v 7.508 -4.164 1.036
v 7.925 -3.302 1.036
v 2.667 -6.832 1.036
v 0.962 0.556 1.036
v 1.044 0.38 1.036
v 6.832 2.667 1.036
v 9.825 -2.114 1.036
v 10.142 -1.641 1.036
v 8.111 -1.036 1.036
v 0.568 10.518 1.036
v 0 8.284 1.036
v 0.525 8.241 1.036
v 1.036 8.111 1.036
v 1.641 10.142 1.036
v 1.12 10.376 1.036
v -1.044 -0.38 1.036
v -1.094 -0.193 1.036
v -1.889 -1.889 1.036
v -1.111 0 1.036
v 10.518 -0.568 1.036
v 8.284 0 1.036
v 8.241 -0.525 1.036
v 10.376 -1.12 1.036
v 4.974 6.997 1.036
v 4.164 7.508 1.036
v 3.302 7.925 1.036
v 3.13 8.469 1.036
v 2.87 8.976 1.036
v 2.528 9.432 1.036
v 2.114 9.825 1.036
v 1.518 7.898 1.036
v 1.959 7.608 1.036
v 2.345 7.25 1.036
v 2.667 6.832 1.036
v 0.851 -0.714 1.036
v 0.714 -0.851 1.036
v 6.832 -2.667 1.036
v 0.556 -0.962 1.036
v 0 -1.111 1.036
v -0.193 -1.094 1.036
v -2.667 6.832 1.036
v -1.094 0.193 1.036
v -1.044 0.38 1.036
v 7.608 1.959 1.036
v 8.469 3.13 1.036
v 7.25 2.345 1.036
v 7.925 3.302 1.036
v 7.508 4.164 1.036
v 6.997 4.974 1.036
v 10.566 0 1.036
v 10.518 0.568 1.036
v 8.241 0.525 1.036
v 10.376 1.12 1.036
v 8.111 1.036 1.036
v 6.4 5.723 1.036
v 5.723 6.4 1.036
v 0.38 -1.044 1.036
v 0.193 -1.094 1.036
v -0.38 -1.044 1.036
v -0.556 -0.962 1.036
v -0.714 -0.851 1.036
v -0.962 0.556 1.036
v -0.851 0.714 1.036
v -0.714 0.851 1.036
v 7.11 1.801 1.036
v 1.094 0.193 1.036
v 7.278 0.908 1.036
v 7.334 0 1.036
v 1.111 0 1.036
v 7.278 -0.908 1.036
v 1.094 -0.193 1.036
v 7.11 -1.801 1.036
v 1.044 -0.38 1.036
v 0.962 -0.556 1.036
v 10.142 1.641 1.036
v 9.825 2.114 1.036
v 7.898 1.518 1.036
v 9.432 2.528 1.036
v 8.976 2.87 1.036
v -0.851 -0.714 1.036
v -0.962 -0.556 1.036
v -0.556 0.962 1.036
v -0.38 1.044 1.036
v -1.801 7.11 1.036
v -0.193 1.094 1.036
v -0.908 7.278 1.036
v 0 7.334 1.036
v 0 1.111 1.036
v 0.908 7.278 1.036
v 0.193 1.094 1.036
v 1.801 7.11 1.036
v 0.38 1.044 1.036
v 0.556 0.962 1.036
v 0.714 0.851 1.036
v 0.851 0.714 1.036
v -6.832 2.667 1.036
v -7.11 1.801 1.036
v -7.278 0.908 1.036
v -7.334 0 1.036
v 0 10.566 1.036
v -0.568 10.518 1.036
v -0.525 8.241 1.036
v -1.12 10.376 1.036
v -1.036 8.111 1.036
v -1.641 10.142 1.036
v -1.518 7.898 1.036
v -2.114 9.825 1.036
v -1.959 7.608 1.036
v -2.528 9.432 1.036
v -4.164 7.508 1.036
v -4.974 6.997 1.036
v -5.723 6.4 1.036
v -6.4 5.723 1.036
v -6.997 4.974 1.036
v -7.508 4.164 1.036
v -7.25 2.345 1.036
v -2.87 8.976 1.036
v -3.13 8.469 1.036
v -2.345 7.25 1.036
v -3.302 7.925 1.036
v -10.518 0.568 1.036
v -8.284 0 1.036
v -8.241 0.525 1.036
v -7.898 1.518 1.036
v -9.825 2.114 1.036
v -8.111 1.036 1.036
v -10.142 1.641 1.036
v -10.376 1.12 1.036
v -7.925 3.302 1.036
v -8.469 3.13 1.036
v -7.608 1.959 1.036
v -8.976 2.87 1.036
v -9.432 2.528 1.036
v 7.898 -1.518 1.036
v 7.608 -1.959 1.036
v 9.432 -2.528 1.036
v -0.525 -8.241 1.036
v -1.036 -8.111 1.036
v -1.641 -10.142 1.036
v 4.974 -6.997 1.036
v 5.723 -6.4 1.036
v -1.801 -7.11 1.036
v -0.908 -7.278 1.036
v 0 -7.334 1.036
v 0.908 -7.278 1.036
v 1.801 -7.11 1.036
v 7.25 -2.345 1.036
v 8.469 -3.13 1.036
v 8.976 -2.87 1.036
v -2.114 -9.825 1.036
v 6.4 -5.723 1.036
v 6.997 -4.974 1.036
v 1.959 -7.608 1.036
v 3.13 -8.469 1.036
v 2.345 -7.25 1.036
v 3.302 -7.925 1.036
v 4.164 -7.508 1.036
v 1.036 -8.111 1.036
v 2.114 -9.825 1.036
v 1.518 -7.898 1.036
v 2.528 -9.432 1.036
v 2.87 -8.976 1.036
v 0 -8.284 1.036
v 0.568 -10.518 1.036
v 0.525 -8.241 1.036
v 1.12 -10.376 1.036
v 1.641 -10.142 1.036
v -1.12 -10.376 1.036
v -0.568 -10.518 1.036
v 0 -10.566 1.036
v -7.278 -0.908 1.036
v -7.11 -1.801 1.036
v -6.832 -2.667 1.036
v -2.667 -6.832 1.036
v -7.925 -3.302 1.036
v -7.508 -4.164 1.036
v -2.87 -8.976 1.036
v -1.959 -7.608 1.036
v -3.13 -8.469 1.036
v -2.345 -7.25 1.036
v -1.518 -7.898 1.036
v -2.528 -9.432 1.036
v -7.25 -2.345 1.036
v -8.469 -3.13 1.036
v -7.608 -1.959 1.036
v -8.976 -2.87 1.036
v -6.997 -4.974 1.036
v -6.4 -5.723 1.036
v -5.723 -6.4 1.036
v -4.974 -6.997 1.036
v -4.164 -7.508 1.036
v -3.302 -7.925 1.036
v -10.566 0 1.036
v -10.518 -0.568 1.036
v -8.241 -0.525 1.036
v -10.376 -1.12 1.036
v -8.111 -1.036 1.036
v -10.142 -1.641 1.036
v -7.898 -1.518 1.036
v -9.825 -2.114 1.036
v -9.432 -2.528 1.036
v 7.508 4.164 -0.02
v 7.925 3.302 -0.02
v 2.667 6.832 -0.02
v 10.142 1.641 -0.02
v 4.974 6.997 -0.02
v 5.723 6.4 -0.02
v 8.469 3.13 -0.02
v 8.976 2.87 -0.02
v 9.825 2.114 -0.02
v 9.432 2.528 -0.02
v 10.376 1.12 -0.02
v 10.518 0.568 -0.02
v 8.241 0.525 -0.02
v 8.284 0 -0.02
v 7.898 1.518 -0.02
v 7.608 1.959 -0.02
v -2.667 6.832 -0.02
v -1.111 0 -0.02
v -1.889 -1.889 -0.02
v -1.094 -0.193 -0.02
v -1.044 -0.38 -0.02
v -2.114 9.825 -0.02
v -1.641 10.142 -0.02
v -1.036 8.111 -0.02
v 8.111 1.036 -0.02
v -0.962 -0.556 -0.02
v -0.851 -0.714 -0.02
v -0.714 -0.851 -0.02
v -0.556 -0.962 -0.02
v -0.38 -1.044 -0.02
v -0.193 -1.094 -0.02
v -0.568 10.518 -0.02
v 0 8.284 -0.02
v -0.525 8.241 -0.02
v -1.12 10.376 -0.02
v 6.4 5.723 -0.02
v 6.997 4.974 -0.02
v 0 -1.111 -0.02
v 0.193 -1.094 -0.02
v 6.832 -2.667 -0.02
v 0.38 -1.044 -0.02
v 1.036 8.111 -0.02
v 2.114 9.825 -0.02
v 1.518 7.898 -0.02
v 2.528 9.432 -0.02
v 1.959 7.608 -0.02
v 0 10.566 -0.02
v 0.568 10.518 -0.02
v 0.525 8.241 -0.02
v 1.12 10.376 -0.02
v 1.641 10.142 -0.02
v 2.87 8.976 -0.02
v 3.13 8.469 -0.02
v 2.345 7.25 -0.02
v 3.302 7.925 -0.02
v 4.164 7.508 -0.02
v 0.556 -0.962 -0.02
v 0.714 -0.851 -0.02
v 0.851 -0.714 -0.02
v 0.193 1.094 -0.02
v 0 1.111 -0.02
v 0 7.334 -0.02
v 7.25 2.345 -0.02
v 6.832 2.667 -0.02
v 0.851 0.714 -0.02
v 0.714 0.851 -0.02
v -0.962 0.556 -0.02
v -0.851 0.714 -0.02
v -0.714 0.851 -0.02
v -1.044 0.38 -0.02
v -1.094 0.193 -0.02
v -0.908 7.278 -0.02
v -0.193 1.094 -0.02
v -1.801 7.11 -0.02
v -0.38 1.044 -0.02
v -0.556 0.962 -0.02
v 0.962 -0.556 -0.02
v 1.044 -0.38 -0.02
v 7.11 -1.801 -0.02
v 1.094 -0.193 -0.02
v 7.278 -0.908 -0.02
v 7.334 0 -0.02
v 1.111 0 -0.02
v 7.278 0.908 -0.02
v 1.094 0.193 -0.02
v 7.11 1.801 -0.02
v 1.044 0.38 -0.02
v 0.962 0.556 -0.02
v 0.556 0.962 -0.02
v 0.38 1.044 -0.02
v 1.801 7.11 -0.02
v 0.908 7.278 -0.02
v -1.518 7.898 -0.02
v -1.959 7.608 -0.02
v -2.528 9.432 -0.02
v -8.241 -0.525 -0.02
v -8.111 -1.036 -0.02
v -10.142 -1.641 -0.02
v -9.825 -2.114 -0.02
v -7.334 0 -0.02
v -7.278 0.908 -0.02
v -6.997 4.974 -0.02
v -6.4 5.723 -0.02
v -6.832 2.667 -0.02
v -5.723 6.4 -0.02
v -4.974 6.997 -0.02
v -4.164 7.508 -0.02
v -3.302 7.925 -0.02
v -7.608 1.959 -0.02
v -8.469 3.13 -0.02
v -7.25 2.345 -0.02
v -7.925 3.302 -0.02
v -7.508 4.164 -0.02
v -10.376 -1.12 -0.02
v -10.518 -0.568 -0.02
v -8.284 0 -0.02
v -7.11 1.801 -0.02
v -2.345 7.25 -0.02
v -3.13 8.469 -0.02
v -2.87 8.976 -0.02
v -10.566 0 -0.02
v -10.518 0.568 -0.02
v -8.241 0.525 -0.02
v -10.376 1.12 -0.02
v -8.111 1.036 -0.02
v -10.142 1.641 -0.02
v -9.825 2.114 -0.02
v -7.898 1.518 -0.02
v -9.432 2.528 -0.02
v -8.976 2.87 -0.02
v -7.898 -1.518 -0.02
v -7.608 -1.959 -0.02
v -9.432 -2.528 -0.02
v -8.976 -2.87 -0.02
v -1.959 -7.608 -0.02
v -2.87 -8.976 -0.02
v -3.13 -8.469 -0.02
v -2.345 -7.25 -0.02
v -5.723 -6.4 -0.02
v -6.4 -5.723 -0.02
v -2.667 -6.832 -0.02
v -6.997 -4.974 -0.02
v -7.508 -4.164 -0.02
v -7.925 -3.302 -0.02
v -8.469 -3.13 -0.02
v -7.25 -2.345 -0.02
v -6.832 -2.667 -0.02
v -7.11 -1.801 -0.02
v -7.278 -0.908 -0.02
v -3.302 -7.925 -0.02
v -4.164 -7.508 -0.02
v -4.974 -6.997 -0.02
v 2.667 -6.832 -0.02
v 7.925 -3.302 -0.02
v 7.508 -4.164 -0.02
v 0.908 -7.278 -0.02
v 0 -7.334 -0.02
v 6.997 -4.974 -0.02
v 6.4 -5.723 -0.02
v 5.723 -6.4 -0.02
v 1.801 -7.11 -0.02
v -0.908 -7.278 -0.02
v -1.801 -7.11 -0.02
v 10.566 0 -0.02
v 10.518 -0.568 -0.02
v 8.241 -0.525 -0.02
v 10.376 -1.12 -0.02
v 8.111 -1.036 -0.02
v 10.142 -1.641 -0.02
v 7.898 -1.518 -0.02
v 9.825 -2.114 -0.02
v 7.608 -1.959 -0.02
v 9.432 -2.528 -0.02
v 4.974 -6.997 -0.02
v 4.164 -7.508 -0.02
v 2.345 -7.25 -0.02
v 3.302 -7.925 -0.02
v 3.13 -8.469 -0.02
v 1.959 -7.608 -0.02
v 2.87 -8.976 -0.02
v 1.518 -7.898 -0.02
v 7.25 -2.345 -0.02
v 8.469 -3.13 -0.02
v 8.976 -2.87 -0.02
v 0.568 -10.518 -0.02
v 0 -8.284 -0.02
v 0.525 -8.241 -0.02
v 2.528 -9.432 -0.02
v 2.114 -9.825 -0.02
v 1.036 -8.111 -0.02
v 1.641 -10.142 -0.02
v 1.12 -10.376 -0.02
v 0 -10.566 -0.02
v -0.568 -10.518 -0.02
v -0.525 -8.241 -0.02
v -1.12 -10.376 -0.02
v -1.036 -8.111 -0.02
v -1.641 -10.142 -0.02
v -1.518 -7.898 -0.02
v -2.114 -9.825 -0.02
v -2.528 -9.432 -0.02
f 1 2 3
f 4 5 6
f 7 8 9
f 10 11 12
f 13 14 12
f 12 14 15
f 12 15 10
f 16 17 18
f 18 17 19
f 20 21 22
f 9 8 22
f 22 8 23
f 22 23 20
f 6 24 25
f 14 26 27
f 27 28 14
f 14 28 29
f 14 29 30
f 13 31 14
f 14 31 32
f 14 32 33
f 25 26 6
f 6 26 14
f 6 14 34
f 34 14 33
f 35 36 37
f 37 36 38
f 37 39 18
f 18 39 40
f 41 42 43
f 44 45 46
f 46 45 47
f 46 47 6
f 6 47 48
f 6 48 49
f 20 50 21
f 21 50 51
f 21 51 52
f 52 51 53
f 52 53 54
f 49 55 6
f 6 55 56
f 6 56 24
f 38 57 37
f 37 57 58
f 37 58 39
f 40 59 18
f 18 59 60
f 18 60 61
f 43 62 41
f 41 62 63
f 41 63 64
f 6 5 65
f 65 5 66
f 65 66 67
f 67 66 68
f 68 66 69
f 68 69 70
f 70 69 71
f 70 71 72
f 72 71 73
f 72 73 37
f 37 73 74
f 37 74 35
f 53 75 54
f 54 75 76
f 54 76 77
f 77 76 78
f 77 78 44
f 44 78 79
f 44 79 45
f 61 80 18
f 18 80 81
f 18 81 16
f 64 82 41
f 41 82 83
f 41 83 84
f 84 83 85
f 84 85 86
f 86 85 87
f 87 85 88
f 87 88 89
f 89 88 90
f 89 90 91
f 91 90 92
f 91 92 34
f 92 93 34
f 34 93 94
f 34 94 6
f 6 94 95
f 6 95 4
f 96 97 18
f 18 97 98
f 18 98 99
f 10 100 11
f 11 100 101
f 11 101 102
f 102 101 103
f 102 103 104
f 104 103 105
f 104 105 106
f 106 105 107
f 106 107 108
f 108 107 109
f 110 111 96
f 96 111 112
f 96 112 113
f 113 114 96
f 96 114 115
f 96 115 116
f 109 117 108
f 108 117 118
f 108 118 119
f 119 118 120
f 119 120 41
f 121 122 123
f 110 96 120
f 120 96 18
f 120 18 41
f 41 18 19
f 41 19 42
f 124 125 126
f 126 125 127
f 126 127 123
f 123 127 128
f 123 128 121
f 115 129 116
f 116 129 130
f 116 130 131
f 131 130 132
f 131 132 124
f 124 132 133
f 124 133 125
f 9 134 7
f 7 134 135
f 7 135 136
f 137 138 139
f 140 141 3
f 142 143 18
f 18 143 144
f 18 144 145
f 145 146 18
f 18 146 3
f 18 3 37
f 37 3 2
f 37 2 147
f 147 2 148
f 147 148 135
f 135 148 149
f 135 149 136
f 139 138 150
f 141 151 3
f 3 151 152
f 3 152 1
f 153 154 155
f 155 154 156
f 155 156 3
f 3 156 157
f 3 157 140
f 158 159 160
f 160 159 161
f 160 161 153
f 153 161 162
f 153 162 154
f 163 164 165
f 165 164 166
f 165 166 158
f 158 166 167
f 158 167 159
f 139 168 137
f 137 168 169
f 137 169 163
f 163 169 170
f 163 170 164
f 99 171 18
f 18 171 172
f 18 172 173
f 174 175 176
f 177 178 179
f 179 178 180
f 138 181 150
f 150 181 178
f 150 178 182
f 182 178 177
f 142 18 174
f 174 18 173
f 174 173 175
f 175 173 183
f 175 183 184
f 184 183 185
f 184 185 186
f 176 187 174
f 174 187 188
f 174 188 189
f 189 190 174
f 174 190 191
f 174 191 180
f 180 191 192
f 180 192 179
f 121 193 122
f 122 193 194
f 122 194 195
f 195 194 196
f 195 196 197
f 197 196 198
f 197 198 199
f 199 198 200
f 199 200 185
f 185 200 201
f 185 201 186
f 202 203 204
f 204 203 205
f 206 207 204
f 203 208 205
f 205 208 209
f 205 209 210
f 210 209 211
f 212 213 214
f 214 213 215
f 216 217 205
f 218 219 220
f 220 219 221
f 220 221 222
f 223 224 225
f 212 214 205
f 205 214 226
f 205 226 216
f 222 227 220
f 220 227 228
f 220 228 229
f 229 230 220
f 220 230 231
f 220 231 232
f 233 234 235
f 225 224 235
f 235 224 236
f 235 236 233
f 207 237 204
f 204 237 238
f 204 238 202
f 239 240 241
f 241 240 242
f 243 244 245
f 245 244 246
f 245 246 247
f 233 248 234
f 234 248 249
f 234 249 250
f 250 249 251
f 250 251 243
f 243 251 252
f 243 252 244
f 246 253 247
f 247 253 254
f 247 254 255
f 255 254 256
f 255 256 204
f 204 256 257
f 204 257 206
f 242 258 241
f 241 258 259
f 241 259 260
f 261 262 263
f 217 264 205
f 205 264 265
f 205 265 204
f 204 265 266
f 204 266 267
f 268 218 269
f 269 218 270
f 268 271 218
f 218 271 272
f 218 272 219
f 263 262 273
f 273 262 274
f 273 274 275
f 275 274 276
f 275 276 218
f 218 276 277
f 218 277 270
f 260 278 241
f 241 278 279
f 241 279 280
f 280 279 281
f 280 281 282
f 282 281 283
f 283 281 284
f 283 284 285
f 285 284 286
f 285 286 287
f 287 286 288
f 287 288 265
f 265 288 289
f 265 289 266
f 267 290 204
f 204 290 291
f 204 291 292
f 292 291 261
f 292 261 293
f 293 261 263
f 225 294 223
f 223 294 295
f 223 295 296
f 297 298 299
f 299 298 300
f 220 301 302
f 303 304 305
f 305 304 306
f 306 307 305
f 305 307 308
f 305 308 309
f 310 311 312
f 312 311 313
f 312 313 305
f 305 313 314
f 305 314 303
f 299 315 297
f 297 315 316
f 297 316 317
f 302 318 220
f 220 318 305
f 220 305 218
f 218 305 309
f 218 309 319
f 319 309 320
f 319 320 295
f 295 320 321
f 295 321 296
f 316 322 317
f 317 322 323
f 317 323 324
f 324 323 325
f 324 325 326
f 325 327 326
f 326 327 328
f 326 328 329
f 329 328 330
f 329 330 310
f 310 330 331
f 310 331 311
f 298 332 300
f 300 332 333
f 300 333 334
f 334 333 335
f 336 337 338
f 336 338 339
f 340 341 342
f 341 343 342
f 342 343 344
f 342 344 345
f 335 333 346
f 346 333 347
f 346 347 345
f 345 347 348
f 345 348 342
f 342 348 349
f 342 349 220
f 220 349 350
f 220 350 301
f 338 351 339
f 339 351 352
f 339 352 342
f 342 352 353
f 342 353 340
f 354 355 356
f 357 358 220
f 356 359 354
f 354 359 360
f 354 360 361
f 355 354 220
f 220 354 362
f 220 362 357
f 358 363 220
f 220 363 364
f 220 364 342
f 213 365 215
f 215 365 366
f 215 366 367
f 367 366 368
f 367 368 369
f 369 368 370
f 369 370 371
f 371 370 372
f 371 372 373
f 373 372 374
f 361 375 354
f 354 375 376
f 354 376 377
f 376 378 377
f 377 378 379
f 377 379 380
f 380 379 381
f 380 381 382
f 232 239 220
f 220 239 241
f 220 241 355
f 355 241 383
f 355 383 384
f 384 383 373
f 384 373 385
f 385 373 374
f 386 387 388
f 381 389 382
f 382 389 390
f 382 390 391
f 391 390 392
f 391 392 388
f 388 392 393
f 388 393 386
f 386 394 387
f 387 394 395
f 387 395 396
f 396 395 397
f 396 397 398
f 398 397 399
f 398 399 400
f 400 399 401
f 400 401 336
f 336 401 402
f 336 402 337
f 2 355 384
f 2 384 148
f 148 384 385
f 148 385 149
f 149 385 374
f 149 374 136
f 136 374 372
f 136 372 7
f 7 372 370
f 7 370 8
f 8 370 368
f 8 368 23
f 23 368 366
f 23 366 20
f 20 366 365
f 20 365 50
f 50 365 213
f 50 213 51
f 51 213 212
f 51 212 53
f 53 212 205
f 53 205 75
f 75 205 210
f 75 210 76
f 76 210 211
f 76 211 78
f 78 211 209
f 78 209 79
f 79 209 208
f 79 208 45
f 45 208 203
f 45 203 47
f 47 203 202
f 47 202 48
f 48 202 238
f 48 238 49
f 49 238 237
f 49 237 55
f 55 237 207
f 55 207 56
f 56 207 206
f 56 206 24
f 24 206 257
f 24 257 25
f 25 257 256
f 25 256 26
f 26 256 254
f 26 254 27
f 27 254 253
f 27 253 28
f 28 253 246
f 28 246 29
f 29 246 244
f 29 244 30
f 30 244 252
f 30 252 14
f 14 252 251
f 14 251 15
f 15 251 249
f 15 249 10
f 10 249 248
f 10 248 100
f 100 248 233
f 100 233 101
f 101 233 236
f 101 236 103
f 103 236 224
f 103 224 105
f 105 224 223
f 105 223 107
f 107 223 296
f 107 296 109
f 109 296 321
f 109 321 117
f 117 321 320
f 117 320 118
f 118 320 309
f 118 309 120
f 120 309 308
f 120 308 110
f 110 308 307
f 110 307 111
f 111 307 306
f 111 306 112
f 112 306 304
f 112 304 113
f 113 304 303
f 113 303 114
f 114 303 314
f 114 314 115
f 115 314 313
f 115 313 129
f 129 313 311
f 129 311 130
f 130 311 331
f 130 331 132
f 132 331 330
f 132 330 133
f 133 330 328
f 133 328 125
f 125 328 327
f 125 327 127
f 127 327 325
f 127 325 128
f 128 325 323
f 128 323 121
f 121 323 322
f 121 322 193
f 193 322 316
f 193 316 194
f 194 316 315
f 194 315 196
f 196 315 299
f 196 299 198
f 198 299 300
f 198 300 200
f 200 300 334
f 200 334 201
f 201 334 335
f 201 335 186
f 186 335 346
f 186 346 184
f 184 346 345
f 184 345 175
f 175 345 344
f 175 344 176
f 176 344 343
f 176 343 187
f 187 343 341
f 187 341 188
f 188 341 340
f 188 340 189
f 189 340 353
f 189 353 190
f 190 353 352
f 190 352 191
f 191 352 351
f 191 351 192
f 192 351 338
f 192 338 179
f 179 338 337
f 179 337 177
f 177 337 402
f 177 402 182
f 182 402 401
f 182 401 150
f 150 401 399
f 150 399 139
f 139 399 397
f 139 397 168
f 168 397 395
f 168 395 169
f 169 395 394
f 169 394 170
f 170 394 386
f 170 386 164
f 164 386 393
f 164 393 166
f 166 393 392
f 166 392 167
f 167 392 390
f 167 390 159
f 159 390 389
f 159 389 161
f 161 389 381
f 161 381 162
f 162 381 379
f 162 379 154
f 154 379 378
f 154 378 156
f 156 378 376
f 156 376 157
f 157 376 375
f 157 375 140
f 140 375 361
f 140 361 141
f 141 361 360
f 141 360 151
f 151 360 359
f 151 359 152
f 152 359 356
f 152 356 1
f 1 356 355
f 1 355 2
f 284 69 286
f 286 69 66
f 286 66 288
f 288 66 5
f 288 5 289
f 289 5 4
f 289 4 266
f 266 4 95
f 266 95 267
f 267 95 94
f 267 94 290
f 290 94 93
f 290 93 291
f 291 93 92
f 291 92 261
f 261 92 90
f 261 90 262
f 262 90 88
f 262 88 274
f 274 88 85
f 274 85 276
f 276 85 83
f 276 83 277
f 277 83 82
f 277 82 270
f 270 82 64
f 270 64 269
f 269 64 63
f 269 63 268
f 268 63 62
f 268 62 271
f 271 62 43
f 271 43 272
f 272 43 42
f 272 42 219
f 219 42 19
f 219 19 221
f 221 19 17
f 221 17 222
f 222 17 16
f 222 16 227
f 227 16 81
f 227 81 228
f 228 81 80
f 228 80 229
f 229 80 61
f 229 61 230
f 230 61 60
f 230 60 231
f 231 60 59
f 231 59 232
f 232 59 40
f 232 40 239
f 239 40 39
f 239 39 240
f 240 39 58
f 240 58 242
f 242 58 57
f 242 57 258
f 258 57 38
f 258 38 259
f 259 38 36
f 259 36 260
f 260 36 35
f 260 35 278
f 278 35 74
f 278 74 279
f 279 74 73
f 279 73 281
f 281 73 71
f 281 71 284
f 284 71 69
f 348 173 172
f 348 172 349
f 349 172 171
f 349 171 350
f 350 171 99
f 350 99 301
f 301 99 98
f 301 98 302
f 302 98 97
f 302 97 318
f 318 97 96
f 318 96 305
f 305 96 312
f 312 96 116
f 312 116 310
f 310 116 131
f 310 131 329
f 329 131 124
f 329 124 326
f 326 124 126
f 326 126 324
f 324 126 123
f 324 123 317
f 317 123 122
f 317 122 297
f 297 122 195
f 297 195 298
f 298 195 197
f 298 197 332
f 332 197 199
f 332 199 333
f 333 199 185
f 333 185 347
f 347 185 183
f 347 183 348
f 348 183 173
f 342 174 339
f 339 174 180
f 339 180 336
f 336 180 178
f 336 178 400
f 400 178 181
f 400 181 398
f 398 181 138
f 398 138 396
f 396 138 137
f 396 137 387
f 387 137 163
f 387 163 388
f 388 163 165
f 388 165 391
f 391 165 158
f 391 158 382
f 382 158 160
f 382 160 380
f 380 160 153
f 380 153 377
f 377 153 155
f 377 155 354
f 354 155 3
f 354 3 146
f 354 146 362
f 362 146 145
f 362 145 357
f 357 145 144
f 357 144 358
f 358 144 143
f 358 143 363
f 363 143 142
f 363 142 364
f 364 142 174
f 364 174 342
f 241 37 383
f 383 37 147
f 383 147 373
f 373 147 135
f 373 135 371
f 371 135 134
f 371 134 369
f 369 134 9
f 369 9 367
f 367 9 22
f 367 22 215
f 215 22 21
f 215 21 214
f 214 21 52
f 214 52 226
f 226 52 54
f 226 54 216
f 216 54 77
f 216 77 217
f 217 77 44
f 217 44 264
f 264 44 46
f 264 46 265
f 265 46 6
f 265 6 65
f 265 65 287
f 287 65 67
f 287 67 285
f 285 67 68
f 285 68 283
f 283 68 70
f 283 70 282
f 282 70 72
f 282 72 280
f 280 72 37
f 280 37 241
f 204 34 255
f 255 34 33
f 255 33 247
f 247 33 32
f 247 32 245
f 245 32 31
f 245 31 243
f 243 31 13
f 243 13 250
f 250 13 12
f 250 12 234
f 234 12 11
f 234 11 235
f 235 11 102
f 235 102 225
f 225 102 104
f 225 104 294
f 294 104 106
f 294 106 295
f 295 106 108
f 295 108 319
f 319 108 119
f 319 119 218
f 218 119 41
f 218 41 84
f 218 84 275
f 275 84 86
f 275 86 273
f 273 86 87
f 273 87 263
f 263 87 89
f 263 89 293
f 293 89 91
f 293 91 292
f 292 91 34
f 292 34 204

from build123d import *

# Parameters (mm, degrees)
BOSS_EXTRUDE1_DEPTH = 1.016
SCALE1_SCALE        = 1.04
SKETCH2_R           = 1.11125
NEEDLE_CUT_DEPTH    = 15.98045747
TAB_CUT_DEPTH       = 15.98045747


with BuildPart() as part:
    # Sketch1 → Boss-Extrude1 (new body)
    with BuildSketch(Plane.XY):
        with BuildLine():
            ThreePointArc((7.62, -3.175), (8.255, 0), (7.62, 3.175))
            ThreePointArc((7.62, 3.175), (10.16, 0), (7.62, -3.175))
        make_face()
        with BuildLine():
            ThreePointArc((7.62, -3.175), (8.255, 0), (7.62, 3.175))
            ThreePointArc((7.62, 3.175), (0, 8.255), (-7.62, 3.175))
            ThreePointArc((-7.62, 3.175), (-8.255, 0), (-7.62, -3.175))
            ThreePointArc((-7.62, -3.175), (0, -8.255), (7.62, -3.175))
        make_face()
        with BuildLine():
            ThreePointArc((-7.62, 3.175), (-8.255, 0), (-7.62, -3.175))
            ThreePointArc((-7.62, -3.175), (-10.16, 0), (-7.62, 3.175))
        make_face()
        with BuildLine():
            ThreePointArc((3.175, 7.62), (0, 10.16), (-3.175, 7.62))
            ThreePointArc((-3.175, 7.62), (0, 8.255), (3.175, 7.62))
        make_face()
        with BuildLine():
            ThreePointArc((3.175, -7.62), (0, -8.255), (-3.175, -7.62))
            ThreePointArc((-3.175, -7.62), (0, -10.16), (3.175, -7.62))
        make_face()
    extrude(amount=BOSS_EXTRUDE1_DEPTH)


with BuildPart() as part_1:
    # Scale1: scaled about (0, 0, 0.508)
    add(part.part.scale(SCALE1_SCALE).moved(Location((0, 0, -0.02032))))

    # Sketch2 → Needle Cut (cut, through all)
    with BuildSketch(Plane.XY.offset(1.03632)):
        Circle(SKETCH2_R)
    extrude(amount=-NEEDLE_CUT_DEPTH, mode=Mode.SUBTRACT)

    # Sketch3 → Tab Cut (cut, through all)
    with BuildSketch(Plane.XY.offset(1.03632)):
        with BuildLine():
            ThreePointArc((-2.667, 6.832154423), (0, 7.33425), (2.667, 6.832154423))
            ThreePointArc((2.667, 6.832154423), (0, 8.284442607), (-2.667, 6.832154423))
        make_face()
        with BuildLine():
            ThreePointArc((6.832154423, 2.667), (7.207633164, 1.356925658), (7.33425, 0))
            ThreePointArc((7.33425, 0), (7.207633164, -1.356925658), (6.832154423, -2.667))
            ThreePointArc((6.832154423, -2.667), (8.284442607, 0), (6.832154423, 2.667))
        make_face()
        with BuildLine():
            ThreePointArc((-2.667, -6.832154423), (0, -8.284442607), (2.667, -6.832154423))
            ThreePointArc((2.667, -6.832154423), (0, -7.33425), (-2.667, -6.832154423))
        make_face()
        with BuildLine():
            ThreePointArc((-6.832154423, -2.667), (-7.33425, 0), (-6.832154423, 2.667))
            ThreePointArc((-6.832154423, 2.667), (-8.284442607, 0), (-6.832154423, -2.667))
        make_face()
    extrude(amount=-TAB_CUT_DEPTH, mode=Mode.SUBTRACT)


solid = part_1.part
